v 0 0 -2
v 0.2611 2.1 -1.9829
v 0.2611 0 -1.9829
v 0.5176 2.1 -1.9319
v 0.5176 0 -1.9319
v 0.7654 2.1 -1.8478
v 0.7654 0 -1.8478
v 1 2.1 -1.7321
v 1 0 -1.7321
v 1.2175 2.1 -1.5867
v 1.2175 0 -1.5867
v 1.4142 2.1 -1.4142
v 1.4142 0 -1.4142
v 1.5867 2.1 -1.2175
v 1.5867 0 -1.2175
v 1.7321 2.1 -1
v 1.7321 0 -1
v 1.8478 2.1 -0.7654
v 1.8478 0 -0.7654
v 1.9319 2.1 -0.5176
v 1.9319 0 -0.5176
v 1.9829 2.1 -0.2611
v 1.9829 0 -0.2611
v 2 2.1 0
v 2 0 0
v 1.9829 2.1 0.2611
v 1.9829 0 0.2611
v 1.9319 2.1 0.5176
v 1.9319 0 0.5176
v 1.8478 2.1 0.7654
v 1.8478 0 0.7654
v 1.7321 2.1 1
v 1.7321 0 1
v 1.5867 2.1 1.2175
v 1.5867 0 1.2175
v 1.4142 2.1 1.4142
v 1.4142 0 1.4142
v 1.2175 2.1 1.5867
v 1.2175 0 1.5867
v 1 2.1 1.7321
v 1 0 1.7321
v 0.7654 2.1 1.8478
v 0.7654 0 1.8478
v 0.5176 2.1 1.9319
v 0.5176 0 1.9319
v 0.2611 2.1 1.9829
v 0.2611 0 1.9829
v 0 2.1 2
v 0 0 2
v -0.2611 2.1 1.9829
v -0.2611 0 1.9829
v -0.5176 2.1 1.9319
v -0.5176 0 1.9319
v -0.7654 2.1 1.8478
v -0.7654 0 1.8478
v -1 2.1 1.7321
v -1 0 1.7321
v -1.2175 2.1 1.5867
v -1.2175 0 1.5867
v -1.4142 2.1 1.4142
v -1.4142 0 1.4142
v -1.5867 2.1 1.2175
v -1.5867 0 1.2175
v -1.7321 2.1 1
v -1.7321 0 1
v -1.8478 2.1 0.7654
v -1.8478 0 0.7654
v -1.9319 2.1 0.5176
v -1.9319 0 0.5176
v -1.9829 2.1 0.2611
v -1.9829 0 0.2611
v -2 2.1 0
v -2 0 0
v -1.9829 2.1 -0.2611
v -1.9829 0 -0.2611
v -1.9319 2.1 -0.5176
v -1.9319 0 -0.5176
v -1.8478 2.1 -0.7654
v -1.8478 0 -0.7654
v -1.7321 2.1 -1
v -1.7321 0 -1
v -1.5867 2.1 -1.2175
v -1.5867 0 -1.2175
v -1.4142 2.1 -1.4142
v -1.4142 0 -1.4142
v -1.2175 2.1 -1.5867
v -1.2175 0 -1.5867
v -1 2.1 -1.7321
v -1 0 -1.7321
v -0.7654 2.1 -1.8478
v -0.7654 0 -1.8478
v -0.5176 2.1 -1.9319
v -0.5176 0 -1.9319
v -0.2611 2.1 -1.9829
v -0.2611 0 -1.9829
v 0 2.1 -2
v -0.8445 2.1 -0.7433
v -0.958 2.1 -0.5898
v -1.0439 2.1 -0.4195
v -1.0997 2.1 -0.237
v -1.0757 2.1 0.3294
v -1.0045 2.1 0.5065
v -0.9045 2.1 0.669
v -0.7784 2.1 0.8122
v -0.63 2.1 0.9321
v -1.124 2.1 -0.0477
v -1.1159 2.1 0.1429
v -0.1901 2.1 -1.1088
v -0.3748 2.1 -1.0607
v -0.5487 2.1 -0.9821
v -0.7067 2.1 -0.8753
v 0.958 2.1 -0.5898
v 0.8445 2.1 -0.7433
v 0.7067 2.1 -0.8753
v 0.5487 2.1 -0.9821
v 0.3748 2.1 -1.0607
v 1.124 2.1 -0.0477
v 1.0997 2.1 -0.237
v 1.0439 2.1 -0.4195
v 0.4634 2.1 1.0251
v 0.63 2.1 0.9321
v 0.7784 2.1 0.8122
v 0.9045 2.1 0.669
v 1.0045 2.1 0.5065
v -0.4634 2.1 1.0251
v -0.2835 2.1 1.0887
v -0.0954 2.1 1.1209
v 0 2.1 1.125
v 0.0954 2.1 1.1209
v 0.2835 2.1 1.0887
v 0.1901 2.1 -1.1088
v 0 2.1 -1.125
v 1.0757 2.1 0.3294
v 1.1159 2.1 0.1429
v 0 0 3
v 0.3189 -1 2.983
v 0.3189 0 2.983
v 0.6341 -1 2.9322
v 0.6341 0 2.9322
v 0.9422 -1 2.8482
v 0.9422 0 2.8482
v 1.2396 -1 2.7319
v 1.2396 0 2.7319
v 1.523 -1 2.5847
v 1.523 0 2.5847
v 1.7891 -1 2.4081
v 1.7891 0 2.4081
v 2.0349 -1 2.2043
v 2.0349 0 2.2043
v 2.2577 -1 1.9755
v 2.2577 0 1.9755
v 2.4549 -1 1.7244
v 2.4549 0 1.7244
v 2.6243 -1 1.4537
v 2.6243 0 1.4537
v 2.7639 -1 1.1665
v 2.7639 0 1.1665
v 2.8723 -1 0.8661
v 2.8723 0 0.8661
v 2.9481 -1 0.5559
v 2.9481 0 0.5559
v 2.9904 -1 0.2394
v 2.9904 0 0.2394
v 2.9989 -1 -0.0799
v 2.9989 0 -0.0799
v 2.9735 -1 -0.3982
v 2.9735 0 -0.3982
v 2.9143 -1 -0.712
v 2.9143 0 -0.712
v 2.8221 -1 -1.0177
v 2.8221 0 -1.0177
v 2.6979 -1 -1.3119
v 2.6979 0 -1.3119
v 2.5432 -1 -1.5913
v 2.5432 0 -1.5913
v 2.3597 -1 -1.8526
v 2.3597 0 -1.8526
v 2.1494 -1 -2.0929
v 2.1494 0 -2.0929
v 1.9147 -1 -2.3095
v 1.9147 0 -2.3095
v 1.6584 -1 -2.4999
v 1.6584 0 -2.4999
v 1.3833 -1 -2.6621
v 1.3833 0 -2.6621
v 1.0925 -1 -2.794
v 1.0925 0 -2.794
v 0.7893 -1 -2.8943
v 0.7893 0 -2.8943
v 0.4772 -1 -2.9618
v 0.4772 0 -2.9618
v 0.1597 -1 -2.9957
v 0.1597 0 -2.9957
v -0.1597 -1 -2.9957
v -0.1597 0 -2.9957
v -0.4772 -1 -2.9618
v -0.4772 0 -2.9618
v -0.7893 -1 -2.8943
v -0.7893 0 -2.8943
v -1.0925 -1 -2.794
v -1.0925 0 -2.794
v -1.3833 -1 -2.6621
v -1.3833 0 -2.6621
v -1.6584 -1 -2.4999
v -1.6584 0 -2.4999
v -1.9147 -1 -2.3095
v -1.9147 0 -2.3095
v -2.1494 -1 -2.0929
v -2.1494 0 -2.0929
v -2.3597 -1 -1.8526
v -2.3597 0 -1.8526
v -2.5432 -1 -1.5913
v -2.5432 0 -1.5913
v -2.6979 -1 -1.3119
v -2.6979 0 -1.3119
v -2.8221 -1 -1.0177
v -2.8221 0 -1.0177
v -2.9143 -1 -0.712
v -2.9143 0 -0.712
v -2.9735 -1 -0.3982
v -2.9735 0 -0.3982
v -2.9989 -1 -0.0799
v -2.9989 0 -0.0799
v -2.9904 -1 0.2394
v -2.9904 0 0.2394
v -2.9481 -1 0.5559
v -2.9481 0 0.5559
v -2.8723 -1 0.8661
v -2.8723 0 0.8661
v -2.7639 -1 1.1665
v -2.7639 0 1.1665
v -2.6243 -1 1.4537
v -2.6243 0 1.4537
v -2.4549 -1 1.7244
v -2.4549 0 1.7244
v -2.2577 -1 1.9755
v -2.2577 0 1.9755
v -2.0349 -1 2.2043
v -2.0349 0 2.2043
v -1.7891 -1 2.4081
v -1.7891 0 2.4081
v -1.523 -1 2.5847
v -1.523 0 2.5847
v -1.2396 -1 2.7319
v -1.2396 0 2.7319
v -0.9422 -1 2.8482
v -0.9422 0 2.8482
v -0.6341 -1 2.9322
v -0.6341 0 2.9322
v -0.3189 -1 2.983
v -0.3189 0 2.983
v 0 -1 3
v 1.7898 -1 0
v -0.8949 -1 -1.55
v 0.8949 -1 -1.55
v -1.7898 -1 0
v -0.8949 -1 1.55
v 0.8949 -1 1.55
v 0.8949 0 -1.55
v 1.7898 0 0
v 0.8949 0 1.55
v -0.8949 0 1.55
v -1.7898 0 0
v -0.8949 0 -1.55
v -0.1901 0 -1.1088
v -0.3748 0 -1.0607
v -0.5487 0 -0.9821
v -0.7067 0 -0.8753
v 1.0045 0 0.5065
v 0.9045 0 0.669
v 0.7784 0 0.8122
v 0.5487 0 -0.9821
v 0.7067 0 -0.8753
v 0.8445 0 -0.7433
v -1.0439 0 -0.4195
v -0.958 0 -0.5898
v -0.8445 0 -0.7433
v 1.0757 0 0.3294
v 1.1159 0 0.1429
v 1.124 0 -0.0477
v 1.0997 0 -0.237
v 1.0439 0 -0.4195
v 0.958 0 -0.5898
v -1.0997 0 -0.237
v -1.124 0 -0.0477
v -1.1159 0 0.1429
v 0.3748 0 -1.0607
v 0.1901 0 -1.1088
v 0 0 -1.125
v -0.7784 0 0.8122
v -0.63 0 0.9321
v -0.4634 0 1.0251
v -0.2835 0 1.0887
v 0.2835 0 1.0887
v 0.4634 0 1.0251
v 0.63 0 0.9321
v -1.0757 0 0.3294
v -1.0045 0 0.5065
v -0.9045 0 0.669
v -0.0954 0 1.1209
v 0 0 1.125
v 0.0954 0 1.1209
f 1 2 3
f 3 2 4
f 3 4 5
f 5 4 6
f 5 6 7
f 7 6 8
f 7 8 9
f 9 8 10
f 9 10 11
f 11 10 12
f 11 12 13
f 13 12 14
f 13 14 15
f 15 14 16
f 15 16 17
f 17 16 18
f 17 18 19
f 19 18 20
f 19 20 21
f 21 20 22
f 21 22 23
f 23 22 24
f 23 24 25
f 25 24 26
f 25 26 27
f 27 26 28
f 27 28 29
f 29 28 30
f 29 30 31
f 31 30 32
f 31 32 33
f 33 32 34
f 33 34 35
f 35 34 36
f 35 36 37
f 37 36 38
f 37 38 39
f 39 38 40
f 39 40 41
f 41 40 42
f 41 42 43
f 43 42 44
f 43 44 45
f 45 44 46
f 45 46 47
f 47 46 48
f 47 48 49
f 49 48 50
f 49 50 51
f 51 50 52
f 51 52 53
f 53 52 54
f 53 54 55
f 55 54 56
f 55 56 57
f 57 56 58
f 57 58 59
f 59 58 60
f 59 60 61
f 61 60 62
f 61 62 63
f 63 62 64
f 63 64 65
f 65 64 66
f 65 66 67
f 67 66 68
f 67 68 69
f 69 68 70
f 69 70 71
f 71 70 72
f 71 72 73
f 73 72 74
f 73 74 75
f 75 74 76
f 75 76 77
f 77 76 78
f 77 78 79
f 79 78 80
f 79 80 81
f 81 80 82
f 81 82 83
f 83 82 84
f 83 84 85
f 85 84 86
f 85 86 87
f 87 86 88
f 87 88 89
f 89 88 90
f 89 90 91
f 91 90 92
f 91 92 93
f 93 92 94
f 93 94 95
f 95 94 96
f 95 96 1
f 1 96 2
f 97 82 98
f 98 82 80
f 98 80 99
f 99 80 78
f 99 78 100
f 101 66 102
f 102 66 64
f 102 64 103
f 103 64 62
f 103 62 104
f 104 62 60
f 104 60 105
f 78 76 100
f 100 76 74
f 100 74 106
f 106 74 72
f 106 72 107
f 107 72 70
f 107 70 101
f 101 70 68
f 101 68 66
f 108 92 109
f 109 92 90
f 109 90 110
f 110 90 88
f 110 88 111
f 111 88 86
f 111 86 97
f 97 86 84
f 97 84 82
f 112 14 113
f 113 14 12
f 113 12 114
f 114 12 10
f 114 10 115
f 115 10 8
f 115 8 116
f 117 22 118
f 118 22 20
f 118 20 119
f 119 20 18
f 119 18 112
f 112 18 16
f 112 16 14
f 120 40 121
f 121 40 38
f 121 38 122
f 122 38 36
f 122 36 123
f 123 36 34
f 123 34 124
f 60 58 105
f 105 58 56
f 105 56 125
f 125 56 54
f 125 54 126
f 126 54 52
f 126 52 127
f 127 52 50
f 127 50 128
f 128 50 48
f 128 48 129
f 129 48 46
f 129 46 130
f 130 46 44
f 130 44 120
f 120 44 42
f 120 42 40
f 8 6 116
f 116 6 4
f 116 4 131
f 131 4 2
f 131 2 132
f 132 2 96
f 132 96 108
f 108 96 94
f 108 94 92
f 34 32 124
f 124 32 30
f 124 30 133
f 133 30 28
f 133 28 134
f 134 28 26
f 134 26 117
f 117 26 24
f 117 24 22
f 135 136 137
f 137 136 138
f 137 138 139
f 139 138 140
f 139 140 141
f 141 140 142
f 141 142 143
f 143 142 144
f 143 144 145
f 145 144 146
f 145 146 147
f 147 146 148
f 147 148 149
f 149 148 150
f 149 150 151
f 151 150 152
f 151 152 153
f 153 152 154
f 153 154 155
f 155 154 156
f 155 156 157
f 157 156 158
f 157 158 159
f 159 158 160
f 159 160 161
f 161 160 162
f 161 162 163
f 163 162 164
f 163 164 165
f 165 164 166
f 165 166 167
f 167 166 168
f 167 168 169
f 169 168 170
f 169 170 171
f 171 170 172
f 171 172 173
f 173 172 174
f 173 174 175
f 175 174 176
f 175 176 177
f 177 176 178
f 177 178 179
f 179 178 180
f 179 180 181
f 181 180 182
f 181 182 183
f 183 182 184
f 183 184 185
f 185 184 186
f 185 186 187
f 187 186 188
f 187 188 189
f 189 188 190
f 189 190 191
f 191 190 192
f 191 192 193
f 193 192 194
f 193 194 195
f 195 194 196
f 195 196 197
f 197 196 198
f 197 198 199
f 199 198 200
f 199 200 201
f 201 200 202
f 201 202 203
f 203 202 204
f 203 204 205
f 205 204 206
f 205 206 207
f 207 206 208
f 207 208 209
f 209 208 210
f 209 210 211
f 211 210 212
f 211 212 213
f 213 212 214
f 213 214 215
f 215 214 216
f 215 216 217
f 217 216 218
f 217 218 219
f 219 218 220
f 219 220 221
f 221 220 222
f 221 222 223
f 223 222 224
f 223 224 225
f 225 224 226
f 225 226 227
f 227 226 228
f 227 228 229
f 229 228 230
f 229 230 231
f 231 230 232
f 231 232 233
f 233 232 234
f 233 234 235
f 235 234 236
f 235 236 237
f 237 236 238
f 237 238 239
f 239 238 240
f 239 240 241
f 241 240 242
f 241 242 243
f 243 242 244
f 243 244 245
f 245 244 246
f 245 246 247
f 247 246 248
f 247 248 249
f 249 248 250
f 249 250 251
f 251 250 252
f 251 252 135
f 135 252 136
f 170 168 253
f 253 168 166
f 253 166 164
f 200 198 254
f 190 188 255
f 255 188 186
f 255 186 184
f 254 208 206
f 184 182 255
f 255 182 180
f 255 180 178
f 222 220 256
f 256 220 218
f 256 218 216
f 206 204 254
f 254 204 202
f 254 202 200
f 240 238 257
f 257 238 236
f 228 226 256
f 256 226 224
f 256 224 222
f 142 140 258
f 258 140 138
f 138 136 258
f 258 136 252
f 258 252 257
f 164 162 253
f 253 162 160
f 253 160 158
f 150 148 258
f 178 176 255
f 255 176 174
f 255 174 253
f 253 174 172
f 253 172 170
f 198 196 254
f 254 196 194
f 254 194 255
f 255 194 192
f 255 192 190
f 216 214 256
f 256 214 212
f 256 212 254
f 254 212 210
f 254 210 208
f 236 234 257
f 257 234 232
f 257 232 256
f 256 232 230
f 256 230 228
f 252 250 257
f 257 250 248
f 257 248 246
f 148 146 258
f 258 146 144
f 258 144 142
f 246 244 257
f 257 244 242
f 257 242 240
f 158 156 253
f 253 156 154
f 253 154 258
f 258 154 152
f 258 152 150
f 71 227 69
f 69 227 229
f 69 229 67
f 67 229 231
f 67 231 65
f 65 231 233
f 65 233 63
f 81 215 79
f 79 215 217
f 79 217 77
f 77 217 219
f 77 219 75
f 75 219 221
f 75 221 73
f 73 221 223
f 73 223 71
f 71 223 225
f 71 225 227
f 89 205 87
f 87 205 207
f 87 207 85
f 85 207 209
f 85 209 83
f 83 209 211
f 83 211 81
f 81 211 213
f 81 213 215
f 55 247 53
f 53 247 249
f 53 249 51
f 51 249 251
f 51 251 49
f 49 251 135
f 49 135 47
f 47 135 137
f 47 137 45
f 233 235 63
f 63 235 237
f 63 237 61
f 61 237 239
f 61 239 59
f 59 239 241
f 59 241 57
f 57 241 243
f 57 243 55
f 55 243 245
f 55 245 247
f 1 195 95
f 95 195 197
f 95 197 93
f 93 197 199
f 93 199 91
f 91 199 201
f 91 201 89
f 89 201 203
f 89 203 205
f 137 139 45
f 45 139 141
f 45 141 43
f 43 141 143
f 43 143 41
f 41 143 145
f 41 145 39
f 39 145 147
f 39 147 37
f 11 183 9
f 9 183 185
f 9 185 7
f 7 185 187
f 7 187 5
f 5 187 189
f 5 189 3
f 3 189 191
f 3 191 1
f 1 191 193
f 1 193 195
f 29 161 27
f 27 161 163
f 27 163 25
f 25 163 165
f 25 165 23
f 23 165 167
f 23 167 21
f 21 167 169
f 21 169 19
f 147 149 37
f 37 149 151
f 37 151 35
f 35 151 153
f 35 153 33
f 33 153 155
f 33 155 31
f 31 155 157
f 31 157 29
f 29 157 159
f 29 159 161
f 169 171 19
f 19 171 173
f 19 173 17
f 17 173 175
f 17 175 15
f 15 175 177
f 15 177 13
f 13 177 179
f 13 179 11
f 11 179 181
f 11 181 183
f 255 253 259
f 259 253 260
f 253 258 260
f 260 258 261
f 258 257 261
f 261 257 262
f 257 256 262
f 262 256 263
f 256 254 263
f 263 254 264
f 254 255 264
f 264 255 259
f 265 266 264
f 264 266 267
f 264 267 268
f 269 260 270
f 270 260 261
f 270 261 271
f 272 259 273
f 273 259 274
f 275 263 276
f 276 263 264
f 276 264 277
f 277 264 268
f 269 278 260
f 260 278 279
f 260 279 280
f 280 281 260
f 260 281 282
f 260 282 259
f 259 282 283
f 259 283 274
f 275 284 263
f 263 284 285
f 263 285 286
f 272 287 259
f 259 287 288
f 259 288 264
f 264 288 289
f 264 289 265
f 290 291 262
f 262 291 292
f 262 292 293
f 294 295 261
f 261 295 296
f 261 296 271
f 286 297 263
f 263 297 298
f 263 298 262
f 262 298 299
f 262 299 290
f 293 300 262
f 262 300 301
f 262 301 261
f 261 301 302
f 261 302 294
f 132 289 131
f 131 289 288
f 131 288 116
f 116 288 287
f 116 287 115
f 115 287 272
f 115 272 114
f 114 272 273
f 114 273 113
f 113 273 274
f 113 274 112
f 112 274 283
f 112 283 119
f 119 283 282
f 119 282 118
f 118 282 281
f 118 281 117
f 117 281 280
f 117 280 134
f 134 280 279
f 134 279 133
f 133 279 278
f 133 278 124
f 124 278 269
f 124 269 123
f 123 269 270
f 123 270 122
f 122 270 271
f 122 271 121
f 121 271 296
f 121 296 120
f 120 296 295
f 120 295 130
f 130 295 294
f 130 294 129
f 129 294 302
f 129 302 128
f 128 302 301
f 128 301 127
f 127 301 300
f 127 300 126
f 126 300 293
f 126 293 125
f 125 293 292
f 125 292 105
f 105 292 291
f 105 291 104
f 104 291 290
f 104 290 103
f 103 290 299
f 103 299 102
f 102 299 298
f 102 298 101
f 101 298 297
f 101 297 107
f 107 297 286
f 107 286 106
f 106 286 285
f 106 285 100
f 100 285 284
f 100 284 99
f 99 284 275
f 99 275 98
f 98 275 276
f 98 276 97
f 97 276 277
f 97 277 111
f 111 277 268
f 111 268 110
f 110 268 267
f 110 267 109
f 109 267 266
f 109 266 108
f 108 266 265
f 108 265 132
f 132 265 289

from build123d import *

# Parameters (mm, degrees)
SKETCH1_R               = 2
BOSS_EXTRUDE1_DEPTH     = 2.1
SKETCH1_3_R             = 3
BOSS_EXTRUDE2_DEPTH     = 1
CUT_EXTRUDE1_DEPTH      = 5.733920151
CUT_EXTRUDE1_DEPTH_BACK = 5.733920151
SKETCH1_4_R             = 1.125


with BuildPart() as part:
    # Sketch1 → Boss-Extrude1 (new body)
    with BuildSketch(Plane(origin=(0, 0, 0), x_dir=(1, 0, 0), z_dir=(0, 1, 0))):
        Circle(SKETCH1_R)
    extrude(amount=BOSS_EXTRUDE1_DEPTH)

    # Sketch1<3> → Boss-Extrude2 (add)
    with BuildSketch(Plane(origin=(0, 0, 0), x_dir=(1, 0, 0), z_dir=(0, 1, 0))):
        Circle(SKETCH1_3_R)
        Polygon((0.894892917, -1.55), (1.789785834, 0), (0.894892917, 1.55), (-0.894892917, 1.55), (-1.789785834, 0), (-0.894892917, -1.55), align=None, mode=Mode.SUBTRACT)
    extrude(amount=-BOSS_EXTRUDE2_DEPTH)

    # Sketch1<4> → Cut-Extrude1 (cut, two sides: drawn at the far end of the back side and taken through both)
    with BuildSketch(Plane(origin=(0, 0, 0), x_dir=(1, 0, 0), z_dir=(0, 1, 0)).offset(-CUT_EXTRUDE1_DEPTH_BACK)):
        Circle(SKETCH1_4_R)
    extrude(amount=CUT_EXTRUDE1_DEPTH + CUT_EXTRUDE1_DEPTH_BACK, mode=Mode.SUBTRACT)


solid = part.part
